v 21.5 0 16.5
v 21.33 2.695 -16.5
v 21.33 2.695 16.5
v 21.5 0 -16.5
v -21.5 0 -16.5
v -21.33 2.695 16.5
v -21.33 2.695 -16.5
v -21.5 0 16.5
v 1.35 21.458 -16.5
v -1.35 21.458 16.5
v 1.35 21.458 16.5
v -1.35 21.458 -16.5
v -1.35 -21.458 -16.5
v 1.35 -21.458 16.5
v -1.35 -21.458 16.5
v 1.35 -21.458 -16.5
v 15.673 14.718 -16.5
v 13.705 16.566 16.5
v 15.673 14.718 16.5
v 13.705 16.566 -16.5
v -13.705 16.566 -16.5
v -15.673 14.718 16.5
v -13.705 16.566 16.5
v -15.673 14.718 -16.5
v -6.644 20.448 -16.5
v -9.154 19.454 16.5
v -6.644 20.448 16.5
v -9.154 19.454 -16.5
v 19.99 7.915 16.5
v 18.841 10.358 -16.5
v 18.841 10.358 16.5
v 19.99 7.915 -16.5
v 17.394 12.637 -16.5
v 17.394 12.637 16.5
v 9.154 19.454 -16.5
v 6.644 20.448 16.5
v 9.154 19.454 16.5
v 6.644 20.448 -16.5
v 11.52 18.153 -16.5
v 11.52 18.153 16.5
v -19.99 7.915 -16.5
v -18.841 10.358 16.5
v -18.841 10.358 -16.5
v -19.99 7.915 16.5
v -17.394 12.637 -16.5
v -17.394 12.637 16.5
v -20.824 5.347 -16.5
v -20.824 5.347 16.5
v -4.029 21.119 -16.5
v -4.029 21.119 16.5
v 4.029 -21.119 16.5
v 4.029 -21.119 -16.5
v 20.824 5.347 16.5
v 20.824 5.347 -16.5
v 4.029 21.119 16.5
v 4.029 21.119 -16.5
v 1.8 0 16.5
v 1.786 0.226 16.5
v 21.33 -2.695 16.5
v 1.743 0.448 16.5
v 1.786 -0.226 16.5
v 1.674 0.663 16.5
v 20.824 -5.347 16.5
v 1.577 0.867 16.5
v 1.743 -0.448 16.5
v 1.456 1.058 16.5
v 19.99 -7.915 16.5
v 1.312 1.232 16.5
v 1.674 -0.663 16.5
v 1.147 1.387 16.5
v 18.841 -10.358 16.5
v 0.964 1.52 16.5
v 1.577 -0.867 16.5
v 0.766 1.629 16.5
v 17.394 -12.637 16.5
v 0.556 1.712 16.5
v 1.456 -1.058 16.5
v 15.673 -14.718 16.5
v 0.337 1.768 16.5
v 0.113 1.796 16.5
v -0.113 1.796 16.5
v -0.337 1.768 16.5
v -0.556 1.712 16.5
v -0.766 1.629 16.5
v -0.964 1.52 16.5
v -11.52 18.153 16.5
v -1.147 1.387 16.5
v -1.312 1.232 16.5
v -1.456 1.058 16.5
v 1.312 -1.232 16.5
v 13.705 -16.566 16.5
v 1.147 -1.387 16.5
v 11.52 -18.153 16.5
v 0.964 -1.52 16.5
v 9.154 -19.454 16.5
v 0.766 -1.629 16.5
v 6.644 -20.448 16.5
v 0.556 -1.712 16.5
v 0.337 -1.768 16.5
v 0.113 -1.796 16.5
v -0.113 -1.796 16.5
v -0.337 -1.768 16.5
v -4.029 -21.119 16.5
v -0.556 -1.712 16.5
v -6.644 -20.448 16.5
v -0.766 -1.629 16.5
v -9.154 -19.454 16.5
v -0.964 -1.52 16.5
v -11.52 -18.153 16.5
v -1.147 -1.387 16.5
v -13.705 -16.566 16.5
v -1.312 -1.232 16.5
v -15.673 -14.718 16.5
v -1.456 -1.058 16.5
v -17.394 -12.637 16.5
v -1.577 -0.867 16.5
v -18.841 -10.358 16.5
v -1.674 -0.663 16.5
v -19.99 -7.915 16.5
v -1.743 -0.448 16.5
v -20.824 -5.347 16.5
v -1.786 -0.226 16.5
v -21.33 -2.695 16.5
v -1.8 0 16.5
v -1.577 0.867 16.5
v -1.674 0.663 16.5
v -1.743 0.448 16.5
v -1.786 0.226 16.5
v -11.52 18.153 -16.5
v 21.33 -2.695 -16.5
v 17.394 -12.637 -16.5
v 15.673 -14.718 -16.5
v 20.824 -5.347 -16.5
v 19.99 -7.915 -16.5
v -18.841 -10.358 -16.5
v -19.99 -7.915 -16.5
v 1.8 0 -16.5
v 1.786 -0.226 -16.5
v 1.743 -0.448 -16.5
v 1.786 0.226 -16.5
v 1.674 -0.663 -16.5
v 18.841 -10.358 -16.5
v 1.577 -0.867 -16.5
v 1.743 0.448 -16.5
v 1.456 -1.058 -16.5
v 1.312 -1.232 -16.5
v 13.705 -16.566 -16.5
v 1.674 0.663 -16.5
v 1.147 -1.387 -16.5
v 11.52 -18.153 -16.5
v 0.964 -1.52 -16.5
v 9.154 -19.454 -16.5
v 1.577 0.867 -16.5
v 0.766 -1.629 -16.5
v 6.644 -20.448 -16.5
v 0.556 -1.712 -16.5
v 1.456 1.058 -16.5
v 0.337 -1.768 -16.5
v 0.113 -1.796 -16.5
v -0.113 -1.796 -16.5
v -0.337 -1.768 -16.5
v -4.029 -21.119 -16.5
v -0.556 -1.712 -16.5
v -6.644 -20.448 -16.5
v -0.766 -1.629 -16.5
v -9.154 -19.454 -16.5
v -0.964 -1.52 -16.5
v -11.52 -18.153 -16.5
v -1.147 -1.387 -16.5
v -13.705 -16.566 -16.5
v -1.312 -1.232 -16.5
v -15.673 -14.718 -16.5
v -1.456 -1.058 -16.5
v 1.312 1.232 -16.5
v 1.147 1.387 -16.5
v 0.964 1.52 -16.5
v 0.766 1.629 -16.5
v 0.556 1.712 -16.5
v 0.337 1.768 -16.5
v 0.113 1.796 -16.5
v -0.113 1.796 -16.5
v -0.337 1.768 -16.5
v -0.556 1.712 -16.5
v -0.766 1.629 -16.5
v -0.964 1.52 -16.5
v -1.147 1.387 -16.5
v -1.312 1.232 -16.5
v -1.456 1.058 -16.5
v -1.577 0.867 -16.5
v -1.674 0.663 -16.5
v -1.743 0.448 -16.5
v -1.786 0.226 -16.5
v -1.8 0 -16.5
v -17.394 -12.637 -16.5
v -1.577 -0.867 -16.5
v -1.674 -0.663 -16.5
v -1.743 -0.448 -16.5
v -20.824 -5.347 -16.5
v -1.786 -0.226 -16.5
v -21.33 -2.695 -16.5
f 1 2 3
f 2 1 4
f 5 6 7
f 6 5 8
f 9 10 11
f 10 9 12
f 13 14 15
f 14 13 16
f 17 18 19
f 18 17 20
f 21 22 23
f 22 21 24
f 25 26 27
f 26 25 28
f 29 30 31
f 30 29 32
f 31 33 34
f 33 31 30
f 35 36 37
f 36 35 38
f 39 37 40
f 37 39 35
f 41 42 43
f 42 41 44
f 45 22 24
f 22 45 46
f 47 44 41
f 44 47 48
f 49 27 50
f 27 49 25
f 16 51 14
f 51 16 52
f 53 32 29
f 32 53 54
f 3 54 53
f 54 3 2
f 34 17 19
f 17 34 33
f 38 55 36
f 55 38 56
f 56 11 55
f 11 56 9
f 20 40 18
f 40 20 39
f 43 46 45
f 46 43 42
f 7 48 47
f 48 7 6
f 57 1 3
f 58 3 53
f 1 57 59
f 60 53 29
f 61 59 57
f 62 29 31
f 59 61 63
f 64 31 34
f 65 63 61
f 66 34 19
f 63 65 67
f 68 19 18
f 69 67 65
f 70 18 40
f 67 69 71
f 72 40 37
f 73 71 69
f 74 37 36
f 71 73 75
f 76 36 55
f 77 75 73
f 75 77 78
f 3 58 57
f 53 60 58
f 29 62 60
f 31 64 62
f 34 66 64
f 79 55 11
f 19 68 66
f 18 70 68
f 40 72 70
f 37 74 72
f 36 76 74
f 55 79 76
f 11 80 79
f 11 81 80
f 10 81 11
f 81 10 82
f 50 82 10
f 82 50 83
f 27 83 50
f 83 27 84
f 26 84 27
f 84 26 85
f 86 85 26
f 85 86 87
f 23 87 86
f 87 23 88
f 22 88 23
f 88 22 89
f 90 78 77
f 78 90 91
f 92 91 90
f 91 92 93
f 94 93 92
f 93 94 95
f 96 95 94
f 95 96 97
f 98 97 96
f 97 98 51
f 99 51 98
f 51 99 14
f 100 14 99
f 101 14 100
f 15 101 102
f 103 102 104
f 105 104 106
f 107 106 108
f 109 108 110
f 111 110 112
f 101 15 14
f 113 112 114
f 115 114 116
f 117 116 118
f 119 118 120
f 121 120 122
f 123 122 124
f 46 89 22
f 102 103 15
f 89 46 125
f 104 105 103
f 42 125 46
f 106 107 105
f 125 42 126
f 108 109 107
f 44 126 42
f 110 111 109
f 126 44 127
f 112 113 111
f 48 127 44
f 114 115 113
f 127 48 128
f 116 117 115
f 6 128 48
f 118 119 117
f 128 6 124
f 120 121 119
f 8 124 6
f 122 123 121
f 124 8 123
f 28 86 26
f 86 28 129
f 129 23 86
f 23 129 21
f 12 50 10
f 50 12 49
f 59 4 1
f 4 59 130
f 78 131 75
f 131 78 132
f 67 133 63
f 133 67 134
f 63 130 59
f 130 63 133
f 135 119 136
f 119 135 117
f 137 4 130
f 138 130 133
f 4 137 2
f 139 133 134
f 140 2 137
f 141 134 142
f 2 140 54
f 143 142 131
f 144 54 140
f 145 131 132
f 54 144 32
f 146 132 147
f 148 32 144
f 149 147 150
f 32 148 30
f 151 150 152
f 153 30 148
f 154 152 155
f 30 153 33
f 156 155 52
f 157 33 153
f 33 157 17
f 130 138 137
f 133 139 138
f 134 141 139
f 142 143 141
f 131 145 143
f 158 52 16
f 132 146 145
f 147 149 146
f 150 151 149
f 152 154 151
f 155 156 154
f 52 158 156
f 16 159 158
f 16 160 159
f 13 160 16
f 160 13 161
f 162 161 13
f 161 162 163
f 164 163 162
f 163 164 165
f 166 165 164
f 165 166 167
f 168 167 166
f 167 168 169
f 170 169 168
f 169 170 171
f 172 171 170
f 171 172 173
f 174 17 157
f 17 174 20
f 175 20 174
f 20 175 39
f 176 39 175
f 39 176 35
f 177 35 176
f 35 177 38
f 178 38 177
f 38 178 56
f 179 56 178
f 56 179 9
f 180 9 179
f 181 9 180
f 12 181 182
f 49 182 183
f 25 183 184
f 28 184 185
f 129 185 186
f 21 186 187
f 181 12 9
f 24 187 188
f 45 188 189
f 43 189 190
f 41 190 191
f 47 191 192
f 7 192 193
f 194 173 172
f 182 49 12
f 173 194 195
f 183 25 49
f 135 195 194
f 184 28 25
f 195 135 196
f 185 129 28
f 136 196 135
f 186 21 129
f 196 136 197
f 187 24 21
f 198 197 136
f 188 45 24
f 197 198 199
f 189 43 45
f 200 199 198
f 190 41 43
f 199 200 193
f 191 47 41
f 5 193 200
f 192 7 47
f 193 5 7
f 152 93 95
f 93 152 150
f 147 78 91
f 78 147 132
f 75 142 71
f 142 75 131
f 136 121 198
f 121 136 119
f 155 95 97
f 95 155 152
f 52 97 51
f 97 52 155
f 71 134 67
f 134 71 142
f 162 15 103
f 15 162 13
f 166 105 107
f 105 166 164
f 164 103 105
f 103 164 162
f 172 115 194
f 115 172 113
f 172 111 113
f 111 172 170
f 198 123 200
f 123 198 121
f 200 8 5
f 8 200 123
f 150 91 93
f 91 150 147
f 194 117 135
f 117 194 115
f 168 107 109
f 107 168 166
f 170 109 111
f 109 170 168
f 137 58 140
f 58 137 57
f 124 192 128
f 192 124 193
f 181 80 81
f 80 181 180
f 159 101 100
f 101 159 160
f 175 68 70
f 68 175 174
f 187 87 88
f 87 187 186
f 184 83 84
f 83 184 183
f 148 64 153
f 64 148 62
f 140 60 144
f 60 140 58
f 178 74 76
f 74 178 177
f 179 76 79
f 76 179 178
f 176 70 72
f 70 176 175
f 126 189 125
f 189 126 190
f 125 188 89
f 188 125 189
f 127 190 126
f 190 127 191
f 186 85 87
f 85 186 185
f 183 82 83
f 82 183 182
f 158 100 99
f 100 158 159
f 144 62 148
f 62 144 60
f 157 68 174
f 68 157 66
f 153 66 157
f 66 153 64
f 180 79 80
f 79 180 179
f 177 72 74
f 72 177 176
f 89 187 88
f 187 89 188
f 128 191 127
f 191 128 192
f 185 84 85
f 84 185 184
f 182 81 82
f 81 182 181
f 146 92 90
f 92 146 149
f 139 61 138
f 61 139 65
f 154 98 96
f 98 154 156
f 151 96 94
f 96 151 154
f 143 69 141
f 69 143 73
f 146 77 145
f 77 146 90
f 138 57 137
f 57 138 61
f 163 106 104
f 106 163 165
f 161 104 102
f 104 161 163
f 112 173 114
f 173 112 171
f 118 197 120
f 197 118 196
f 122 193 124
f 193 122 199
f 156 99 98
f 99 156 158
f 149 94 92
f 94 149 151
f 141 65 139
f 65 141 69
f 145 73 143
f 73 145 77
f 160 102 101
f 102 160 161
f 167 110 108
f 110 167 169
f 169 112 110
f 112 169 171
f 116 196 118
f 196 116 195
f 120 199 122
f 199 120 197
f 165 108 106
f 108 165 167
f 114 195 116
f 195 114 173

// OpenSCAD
$fn = 50;


difference() {
	union() {
		translate(v = [0, 0, -16.5000000000]) {
			cylinder(h = 33, r = 21.5000000000);
		}
	}
	union() {
		translate(v = [0, 0, -100.0000000000]) {
			cylinder(h = 200, r = 1.8000000000);
		}
	}
}
